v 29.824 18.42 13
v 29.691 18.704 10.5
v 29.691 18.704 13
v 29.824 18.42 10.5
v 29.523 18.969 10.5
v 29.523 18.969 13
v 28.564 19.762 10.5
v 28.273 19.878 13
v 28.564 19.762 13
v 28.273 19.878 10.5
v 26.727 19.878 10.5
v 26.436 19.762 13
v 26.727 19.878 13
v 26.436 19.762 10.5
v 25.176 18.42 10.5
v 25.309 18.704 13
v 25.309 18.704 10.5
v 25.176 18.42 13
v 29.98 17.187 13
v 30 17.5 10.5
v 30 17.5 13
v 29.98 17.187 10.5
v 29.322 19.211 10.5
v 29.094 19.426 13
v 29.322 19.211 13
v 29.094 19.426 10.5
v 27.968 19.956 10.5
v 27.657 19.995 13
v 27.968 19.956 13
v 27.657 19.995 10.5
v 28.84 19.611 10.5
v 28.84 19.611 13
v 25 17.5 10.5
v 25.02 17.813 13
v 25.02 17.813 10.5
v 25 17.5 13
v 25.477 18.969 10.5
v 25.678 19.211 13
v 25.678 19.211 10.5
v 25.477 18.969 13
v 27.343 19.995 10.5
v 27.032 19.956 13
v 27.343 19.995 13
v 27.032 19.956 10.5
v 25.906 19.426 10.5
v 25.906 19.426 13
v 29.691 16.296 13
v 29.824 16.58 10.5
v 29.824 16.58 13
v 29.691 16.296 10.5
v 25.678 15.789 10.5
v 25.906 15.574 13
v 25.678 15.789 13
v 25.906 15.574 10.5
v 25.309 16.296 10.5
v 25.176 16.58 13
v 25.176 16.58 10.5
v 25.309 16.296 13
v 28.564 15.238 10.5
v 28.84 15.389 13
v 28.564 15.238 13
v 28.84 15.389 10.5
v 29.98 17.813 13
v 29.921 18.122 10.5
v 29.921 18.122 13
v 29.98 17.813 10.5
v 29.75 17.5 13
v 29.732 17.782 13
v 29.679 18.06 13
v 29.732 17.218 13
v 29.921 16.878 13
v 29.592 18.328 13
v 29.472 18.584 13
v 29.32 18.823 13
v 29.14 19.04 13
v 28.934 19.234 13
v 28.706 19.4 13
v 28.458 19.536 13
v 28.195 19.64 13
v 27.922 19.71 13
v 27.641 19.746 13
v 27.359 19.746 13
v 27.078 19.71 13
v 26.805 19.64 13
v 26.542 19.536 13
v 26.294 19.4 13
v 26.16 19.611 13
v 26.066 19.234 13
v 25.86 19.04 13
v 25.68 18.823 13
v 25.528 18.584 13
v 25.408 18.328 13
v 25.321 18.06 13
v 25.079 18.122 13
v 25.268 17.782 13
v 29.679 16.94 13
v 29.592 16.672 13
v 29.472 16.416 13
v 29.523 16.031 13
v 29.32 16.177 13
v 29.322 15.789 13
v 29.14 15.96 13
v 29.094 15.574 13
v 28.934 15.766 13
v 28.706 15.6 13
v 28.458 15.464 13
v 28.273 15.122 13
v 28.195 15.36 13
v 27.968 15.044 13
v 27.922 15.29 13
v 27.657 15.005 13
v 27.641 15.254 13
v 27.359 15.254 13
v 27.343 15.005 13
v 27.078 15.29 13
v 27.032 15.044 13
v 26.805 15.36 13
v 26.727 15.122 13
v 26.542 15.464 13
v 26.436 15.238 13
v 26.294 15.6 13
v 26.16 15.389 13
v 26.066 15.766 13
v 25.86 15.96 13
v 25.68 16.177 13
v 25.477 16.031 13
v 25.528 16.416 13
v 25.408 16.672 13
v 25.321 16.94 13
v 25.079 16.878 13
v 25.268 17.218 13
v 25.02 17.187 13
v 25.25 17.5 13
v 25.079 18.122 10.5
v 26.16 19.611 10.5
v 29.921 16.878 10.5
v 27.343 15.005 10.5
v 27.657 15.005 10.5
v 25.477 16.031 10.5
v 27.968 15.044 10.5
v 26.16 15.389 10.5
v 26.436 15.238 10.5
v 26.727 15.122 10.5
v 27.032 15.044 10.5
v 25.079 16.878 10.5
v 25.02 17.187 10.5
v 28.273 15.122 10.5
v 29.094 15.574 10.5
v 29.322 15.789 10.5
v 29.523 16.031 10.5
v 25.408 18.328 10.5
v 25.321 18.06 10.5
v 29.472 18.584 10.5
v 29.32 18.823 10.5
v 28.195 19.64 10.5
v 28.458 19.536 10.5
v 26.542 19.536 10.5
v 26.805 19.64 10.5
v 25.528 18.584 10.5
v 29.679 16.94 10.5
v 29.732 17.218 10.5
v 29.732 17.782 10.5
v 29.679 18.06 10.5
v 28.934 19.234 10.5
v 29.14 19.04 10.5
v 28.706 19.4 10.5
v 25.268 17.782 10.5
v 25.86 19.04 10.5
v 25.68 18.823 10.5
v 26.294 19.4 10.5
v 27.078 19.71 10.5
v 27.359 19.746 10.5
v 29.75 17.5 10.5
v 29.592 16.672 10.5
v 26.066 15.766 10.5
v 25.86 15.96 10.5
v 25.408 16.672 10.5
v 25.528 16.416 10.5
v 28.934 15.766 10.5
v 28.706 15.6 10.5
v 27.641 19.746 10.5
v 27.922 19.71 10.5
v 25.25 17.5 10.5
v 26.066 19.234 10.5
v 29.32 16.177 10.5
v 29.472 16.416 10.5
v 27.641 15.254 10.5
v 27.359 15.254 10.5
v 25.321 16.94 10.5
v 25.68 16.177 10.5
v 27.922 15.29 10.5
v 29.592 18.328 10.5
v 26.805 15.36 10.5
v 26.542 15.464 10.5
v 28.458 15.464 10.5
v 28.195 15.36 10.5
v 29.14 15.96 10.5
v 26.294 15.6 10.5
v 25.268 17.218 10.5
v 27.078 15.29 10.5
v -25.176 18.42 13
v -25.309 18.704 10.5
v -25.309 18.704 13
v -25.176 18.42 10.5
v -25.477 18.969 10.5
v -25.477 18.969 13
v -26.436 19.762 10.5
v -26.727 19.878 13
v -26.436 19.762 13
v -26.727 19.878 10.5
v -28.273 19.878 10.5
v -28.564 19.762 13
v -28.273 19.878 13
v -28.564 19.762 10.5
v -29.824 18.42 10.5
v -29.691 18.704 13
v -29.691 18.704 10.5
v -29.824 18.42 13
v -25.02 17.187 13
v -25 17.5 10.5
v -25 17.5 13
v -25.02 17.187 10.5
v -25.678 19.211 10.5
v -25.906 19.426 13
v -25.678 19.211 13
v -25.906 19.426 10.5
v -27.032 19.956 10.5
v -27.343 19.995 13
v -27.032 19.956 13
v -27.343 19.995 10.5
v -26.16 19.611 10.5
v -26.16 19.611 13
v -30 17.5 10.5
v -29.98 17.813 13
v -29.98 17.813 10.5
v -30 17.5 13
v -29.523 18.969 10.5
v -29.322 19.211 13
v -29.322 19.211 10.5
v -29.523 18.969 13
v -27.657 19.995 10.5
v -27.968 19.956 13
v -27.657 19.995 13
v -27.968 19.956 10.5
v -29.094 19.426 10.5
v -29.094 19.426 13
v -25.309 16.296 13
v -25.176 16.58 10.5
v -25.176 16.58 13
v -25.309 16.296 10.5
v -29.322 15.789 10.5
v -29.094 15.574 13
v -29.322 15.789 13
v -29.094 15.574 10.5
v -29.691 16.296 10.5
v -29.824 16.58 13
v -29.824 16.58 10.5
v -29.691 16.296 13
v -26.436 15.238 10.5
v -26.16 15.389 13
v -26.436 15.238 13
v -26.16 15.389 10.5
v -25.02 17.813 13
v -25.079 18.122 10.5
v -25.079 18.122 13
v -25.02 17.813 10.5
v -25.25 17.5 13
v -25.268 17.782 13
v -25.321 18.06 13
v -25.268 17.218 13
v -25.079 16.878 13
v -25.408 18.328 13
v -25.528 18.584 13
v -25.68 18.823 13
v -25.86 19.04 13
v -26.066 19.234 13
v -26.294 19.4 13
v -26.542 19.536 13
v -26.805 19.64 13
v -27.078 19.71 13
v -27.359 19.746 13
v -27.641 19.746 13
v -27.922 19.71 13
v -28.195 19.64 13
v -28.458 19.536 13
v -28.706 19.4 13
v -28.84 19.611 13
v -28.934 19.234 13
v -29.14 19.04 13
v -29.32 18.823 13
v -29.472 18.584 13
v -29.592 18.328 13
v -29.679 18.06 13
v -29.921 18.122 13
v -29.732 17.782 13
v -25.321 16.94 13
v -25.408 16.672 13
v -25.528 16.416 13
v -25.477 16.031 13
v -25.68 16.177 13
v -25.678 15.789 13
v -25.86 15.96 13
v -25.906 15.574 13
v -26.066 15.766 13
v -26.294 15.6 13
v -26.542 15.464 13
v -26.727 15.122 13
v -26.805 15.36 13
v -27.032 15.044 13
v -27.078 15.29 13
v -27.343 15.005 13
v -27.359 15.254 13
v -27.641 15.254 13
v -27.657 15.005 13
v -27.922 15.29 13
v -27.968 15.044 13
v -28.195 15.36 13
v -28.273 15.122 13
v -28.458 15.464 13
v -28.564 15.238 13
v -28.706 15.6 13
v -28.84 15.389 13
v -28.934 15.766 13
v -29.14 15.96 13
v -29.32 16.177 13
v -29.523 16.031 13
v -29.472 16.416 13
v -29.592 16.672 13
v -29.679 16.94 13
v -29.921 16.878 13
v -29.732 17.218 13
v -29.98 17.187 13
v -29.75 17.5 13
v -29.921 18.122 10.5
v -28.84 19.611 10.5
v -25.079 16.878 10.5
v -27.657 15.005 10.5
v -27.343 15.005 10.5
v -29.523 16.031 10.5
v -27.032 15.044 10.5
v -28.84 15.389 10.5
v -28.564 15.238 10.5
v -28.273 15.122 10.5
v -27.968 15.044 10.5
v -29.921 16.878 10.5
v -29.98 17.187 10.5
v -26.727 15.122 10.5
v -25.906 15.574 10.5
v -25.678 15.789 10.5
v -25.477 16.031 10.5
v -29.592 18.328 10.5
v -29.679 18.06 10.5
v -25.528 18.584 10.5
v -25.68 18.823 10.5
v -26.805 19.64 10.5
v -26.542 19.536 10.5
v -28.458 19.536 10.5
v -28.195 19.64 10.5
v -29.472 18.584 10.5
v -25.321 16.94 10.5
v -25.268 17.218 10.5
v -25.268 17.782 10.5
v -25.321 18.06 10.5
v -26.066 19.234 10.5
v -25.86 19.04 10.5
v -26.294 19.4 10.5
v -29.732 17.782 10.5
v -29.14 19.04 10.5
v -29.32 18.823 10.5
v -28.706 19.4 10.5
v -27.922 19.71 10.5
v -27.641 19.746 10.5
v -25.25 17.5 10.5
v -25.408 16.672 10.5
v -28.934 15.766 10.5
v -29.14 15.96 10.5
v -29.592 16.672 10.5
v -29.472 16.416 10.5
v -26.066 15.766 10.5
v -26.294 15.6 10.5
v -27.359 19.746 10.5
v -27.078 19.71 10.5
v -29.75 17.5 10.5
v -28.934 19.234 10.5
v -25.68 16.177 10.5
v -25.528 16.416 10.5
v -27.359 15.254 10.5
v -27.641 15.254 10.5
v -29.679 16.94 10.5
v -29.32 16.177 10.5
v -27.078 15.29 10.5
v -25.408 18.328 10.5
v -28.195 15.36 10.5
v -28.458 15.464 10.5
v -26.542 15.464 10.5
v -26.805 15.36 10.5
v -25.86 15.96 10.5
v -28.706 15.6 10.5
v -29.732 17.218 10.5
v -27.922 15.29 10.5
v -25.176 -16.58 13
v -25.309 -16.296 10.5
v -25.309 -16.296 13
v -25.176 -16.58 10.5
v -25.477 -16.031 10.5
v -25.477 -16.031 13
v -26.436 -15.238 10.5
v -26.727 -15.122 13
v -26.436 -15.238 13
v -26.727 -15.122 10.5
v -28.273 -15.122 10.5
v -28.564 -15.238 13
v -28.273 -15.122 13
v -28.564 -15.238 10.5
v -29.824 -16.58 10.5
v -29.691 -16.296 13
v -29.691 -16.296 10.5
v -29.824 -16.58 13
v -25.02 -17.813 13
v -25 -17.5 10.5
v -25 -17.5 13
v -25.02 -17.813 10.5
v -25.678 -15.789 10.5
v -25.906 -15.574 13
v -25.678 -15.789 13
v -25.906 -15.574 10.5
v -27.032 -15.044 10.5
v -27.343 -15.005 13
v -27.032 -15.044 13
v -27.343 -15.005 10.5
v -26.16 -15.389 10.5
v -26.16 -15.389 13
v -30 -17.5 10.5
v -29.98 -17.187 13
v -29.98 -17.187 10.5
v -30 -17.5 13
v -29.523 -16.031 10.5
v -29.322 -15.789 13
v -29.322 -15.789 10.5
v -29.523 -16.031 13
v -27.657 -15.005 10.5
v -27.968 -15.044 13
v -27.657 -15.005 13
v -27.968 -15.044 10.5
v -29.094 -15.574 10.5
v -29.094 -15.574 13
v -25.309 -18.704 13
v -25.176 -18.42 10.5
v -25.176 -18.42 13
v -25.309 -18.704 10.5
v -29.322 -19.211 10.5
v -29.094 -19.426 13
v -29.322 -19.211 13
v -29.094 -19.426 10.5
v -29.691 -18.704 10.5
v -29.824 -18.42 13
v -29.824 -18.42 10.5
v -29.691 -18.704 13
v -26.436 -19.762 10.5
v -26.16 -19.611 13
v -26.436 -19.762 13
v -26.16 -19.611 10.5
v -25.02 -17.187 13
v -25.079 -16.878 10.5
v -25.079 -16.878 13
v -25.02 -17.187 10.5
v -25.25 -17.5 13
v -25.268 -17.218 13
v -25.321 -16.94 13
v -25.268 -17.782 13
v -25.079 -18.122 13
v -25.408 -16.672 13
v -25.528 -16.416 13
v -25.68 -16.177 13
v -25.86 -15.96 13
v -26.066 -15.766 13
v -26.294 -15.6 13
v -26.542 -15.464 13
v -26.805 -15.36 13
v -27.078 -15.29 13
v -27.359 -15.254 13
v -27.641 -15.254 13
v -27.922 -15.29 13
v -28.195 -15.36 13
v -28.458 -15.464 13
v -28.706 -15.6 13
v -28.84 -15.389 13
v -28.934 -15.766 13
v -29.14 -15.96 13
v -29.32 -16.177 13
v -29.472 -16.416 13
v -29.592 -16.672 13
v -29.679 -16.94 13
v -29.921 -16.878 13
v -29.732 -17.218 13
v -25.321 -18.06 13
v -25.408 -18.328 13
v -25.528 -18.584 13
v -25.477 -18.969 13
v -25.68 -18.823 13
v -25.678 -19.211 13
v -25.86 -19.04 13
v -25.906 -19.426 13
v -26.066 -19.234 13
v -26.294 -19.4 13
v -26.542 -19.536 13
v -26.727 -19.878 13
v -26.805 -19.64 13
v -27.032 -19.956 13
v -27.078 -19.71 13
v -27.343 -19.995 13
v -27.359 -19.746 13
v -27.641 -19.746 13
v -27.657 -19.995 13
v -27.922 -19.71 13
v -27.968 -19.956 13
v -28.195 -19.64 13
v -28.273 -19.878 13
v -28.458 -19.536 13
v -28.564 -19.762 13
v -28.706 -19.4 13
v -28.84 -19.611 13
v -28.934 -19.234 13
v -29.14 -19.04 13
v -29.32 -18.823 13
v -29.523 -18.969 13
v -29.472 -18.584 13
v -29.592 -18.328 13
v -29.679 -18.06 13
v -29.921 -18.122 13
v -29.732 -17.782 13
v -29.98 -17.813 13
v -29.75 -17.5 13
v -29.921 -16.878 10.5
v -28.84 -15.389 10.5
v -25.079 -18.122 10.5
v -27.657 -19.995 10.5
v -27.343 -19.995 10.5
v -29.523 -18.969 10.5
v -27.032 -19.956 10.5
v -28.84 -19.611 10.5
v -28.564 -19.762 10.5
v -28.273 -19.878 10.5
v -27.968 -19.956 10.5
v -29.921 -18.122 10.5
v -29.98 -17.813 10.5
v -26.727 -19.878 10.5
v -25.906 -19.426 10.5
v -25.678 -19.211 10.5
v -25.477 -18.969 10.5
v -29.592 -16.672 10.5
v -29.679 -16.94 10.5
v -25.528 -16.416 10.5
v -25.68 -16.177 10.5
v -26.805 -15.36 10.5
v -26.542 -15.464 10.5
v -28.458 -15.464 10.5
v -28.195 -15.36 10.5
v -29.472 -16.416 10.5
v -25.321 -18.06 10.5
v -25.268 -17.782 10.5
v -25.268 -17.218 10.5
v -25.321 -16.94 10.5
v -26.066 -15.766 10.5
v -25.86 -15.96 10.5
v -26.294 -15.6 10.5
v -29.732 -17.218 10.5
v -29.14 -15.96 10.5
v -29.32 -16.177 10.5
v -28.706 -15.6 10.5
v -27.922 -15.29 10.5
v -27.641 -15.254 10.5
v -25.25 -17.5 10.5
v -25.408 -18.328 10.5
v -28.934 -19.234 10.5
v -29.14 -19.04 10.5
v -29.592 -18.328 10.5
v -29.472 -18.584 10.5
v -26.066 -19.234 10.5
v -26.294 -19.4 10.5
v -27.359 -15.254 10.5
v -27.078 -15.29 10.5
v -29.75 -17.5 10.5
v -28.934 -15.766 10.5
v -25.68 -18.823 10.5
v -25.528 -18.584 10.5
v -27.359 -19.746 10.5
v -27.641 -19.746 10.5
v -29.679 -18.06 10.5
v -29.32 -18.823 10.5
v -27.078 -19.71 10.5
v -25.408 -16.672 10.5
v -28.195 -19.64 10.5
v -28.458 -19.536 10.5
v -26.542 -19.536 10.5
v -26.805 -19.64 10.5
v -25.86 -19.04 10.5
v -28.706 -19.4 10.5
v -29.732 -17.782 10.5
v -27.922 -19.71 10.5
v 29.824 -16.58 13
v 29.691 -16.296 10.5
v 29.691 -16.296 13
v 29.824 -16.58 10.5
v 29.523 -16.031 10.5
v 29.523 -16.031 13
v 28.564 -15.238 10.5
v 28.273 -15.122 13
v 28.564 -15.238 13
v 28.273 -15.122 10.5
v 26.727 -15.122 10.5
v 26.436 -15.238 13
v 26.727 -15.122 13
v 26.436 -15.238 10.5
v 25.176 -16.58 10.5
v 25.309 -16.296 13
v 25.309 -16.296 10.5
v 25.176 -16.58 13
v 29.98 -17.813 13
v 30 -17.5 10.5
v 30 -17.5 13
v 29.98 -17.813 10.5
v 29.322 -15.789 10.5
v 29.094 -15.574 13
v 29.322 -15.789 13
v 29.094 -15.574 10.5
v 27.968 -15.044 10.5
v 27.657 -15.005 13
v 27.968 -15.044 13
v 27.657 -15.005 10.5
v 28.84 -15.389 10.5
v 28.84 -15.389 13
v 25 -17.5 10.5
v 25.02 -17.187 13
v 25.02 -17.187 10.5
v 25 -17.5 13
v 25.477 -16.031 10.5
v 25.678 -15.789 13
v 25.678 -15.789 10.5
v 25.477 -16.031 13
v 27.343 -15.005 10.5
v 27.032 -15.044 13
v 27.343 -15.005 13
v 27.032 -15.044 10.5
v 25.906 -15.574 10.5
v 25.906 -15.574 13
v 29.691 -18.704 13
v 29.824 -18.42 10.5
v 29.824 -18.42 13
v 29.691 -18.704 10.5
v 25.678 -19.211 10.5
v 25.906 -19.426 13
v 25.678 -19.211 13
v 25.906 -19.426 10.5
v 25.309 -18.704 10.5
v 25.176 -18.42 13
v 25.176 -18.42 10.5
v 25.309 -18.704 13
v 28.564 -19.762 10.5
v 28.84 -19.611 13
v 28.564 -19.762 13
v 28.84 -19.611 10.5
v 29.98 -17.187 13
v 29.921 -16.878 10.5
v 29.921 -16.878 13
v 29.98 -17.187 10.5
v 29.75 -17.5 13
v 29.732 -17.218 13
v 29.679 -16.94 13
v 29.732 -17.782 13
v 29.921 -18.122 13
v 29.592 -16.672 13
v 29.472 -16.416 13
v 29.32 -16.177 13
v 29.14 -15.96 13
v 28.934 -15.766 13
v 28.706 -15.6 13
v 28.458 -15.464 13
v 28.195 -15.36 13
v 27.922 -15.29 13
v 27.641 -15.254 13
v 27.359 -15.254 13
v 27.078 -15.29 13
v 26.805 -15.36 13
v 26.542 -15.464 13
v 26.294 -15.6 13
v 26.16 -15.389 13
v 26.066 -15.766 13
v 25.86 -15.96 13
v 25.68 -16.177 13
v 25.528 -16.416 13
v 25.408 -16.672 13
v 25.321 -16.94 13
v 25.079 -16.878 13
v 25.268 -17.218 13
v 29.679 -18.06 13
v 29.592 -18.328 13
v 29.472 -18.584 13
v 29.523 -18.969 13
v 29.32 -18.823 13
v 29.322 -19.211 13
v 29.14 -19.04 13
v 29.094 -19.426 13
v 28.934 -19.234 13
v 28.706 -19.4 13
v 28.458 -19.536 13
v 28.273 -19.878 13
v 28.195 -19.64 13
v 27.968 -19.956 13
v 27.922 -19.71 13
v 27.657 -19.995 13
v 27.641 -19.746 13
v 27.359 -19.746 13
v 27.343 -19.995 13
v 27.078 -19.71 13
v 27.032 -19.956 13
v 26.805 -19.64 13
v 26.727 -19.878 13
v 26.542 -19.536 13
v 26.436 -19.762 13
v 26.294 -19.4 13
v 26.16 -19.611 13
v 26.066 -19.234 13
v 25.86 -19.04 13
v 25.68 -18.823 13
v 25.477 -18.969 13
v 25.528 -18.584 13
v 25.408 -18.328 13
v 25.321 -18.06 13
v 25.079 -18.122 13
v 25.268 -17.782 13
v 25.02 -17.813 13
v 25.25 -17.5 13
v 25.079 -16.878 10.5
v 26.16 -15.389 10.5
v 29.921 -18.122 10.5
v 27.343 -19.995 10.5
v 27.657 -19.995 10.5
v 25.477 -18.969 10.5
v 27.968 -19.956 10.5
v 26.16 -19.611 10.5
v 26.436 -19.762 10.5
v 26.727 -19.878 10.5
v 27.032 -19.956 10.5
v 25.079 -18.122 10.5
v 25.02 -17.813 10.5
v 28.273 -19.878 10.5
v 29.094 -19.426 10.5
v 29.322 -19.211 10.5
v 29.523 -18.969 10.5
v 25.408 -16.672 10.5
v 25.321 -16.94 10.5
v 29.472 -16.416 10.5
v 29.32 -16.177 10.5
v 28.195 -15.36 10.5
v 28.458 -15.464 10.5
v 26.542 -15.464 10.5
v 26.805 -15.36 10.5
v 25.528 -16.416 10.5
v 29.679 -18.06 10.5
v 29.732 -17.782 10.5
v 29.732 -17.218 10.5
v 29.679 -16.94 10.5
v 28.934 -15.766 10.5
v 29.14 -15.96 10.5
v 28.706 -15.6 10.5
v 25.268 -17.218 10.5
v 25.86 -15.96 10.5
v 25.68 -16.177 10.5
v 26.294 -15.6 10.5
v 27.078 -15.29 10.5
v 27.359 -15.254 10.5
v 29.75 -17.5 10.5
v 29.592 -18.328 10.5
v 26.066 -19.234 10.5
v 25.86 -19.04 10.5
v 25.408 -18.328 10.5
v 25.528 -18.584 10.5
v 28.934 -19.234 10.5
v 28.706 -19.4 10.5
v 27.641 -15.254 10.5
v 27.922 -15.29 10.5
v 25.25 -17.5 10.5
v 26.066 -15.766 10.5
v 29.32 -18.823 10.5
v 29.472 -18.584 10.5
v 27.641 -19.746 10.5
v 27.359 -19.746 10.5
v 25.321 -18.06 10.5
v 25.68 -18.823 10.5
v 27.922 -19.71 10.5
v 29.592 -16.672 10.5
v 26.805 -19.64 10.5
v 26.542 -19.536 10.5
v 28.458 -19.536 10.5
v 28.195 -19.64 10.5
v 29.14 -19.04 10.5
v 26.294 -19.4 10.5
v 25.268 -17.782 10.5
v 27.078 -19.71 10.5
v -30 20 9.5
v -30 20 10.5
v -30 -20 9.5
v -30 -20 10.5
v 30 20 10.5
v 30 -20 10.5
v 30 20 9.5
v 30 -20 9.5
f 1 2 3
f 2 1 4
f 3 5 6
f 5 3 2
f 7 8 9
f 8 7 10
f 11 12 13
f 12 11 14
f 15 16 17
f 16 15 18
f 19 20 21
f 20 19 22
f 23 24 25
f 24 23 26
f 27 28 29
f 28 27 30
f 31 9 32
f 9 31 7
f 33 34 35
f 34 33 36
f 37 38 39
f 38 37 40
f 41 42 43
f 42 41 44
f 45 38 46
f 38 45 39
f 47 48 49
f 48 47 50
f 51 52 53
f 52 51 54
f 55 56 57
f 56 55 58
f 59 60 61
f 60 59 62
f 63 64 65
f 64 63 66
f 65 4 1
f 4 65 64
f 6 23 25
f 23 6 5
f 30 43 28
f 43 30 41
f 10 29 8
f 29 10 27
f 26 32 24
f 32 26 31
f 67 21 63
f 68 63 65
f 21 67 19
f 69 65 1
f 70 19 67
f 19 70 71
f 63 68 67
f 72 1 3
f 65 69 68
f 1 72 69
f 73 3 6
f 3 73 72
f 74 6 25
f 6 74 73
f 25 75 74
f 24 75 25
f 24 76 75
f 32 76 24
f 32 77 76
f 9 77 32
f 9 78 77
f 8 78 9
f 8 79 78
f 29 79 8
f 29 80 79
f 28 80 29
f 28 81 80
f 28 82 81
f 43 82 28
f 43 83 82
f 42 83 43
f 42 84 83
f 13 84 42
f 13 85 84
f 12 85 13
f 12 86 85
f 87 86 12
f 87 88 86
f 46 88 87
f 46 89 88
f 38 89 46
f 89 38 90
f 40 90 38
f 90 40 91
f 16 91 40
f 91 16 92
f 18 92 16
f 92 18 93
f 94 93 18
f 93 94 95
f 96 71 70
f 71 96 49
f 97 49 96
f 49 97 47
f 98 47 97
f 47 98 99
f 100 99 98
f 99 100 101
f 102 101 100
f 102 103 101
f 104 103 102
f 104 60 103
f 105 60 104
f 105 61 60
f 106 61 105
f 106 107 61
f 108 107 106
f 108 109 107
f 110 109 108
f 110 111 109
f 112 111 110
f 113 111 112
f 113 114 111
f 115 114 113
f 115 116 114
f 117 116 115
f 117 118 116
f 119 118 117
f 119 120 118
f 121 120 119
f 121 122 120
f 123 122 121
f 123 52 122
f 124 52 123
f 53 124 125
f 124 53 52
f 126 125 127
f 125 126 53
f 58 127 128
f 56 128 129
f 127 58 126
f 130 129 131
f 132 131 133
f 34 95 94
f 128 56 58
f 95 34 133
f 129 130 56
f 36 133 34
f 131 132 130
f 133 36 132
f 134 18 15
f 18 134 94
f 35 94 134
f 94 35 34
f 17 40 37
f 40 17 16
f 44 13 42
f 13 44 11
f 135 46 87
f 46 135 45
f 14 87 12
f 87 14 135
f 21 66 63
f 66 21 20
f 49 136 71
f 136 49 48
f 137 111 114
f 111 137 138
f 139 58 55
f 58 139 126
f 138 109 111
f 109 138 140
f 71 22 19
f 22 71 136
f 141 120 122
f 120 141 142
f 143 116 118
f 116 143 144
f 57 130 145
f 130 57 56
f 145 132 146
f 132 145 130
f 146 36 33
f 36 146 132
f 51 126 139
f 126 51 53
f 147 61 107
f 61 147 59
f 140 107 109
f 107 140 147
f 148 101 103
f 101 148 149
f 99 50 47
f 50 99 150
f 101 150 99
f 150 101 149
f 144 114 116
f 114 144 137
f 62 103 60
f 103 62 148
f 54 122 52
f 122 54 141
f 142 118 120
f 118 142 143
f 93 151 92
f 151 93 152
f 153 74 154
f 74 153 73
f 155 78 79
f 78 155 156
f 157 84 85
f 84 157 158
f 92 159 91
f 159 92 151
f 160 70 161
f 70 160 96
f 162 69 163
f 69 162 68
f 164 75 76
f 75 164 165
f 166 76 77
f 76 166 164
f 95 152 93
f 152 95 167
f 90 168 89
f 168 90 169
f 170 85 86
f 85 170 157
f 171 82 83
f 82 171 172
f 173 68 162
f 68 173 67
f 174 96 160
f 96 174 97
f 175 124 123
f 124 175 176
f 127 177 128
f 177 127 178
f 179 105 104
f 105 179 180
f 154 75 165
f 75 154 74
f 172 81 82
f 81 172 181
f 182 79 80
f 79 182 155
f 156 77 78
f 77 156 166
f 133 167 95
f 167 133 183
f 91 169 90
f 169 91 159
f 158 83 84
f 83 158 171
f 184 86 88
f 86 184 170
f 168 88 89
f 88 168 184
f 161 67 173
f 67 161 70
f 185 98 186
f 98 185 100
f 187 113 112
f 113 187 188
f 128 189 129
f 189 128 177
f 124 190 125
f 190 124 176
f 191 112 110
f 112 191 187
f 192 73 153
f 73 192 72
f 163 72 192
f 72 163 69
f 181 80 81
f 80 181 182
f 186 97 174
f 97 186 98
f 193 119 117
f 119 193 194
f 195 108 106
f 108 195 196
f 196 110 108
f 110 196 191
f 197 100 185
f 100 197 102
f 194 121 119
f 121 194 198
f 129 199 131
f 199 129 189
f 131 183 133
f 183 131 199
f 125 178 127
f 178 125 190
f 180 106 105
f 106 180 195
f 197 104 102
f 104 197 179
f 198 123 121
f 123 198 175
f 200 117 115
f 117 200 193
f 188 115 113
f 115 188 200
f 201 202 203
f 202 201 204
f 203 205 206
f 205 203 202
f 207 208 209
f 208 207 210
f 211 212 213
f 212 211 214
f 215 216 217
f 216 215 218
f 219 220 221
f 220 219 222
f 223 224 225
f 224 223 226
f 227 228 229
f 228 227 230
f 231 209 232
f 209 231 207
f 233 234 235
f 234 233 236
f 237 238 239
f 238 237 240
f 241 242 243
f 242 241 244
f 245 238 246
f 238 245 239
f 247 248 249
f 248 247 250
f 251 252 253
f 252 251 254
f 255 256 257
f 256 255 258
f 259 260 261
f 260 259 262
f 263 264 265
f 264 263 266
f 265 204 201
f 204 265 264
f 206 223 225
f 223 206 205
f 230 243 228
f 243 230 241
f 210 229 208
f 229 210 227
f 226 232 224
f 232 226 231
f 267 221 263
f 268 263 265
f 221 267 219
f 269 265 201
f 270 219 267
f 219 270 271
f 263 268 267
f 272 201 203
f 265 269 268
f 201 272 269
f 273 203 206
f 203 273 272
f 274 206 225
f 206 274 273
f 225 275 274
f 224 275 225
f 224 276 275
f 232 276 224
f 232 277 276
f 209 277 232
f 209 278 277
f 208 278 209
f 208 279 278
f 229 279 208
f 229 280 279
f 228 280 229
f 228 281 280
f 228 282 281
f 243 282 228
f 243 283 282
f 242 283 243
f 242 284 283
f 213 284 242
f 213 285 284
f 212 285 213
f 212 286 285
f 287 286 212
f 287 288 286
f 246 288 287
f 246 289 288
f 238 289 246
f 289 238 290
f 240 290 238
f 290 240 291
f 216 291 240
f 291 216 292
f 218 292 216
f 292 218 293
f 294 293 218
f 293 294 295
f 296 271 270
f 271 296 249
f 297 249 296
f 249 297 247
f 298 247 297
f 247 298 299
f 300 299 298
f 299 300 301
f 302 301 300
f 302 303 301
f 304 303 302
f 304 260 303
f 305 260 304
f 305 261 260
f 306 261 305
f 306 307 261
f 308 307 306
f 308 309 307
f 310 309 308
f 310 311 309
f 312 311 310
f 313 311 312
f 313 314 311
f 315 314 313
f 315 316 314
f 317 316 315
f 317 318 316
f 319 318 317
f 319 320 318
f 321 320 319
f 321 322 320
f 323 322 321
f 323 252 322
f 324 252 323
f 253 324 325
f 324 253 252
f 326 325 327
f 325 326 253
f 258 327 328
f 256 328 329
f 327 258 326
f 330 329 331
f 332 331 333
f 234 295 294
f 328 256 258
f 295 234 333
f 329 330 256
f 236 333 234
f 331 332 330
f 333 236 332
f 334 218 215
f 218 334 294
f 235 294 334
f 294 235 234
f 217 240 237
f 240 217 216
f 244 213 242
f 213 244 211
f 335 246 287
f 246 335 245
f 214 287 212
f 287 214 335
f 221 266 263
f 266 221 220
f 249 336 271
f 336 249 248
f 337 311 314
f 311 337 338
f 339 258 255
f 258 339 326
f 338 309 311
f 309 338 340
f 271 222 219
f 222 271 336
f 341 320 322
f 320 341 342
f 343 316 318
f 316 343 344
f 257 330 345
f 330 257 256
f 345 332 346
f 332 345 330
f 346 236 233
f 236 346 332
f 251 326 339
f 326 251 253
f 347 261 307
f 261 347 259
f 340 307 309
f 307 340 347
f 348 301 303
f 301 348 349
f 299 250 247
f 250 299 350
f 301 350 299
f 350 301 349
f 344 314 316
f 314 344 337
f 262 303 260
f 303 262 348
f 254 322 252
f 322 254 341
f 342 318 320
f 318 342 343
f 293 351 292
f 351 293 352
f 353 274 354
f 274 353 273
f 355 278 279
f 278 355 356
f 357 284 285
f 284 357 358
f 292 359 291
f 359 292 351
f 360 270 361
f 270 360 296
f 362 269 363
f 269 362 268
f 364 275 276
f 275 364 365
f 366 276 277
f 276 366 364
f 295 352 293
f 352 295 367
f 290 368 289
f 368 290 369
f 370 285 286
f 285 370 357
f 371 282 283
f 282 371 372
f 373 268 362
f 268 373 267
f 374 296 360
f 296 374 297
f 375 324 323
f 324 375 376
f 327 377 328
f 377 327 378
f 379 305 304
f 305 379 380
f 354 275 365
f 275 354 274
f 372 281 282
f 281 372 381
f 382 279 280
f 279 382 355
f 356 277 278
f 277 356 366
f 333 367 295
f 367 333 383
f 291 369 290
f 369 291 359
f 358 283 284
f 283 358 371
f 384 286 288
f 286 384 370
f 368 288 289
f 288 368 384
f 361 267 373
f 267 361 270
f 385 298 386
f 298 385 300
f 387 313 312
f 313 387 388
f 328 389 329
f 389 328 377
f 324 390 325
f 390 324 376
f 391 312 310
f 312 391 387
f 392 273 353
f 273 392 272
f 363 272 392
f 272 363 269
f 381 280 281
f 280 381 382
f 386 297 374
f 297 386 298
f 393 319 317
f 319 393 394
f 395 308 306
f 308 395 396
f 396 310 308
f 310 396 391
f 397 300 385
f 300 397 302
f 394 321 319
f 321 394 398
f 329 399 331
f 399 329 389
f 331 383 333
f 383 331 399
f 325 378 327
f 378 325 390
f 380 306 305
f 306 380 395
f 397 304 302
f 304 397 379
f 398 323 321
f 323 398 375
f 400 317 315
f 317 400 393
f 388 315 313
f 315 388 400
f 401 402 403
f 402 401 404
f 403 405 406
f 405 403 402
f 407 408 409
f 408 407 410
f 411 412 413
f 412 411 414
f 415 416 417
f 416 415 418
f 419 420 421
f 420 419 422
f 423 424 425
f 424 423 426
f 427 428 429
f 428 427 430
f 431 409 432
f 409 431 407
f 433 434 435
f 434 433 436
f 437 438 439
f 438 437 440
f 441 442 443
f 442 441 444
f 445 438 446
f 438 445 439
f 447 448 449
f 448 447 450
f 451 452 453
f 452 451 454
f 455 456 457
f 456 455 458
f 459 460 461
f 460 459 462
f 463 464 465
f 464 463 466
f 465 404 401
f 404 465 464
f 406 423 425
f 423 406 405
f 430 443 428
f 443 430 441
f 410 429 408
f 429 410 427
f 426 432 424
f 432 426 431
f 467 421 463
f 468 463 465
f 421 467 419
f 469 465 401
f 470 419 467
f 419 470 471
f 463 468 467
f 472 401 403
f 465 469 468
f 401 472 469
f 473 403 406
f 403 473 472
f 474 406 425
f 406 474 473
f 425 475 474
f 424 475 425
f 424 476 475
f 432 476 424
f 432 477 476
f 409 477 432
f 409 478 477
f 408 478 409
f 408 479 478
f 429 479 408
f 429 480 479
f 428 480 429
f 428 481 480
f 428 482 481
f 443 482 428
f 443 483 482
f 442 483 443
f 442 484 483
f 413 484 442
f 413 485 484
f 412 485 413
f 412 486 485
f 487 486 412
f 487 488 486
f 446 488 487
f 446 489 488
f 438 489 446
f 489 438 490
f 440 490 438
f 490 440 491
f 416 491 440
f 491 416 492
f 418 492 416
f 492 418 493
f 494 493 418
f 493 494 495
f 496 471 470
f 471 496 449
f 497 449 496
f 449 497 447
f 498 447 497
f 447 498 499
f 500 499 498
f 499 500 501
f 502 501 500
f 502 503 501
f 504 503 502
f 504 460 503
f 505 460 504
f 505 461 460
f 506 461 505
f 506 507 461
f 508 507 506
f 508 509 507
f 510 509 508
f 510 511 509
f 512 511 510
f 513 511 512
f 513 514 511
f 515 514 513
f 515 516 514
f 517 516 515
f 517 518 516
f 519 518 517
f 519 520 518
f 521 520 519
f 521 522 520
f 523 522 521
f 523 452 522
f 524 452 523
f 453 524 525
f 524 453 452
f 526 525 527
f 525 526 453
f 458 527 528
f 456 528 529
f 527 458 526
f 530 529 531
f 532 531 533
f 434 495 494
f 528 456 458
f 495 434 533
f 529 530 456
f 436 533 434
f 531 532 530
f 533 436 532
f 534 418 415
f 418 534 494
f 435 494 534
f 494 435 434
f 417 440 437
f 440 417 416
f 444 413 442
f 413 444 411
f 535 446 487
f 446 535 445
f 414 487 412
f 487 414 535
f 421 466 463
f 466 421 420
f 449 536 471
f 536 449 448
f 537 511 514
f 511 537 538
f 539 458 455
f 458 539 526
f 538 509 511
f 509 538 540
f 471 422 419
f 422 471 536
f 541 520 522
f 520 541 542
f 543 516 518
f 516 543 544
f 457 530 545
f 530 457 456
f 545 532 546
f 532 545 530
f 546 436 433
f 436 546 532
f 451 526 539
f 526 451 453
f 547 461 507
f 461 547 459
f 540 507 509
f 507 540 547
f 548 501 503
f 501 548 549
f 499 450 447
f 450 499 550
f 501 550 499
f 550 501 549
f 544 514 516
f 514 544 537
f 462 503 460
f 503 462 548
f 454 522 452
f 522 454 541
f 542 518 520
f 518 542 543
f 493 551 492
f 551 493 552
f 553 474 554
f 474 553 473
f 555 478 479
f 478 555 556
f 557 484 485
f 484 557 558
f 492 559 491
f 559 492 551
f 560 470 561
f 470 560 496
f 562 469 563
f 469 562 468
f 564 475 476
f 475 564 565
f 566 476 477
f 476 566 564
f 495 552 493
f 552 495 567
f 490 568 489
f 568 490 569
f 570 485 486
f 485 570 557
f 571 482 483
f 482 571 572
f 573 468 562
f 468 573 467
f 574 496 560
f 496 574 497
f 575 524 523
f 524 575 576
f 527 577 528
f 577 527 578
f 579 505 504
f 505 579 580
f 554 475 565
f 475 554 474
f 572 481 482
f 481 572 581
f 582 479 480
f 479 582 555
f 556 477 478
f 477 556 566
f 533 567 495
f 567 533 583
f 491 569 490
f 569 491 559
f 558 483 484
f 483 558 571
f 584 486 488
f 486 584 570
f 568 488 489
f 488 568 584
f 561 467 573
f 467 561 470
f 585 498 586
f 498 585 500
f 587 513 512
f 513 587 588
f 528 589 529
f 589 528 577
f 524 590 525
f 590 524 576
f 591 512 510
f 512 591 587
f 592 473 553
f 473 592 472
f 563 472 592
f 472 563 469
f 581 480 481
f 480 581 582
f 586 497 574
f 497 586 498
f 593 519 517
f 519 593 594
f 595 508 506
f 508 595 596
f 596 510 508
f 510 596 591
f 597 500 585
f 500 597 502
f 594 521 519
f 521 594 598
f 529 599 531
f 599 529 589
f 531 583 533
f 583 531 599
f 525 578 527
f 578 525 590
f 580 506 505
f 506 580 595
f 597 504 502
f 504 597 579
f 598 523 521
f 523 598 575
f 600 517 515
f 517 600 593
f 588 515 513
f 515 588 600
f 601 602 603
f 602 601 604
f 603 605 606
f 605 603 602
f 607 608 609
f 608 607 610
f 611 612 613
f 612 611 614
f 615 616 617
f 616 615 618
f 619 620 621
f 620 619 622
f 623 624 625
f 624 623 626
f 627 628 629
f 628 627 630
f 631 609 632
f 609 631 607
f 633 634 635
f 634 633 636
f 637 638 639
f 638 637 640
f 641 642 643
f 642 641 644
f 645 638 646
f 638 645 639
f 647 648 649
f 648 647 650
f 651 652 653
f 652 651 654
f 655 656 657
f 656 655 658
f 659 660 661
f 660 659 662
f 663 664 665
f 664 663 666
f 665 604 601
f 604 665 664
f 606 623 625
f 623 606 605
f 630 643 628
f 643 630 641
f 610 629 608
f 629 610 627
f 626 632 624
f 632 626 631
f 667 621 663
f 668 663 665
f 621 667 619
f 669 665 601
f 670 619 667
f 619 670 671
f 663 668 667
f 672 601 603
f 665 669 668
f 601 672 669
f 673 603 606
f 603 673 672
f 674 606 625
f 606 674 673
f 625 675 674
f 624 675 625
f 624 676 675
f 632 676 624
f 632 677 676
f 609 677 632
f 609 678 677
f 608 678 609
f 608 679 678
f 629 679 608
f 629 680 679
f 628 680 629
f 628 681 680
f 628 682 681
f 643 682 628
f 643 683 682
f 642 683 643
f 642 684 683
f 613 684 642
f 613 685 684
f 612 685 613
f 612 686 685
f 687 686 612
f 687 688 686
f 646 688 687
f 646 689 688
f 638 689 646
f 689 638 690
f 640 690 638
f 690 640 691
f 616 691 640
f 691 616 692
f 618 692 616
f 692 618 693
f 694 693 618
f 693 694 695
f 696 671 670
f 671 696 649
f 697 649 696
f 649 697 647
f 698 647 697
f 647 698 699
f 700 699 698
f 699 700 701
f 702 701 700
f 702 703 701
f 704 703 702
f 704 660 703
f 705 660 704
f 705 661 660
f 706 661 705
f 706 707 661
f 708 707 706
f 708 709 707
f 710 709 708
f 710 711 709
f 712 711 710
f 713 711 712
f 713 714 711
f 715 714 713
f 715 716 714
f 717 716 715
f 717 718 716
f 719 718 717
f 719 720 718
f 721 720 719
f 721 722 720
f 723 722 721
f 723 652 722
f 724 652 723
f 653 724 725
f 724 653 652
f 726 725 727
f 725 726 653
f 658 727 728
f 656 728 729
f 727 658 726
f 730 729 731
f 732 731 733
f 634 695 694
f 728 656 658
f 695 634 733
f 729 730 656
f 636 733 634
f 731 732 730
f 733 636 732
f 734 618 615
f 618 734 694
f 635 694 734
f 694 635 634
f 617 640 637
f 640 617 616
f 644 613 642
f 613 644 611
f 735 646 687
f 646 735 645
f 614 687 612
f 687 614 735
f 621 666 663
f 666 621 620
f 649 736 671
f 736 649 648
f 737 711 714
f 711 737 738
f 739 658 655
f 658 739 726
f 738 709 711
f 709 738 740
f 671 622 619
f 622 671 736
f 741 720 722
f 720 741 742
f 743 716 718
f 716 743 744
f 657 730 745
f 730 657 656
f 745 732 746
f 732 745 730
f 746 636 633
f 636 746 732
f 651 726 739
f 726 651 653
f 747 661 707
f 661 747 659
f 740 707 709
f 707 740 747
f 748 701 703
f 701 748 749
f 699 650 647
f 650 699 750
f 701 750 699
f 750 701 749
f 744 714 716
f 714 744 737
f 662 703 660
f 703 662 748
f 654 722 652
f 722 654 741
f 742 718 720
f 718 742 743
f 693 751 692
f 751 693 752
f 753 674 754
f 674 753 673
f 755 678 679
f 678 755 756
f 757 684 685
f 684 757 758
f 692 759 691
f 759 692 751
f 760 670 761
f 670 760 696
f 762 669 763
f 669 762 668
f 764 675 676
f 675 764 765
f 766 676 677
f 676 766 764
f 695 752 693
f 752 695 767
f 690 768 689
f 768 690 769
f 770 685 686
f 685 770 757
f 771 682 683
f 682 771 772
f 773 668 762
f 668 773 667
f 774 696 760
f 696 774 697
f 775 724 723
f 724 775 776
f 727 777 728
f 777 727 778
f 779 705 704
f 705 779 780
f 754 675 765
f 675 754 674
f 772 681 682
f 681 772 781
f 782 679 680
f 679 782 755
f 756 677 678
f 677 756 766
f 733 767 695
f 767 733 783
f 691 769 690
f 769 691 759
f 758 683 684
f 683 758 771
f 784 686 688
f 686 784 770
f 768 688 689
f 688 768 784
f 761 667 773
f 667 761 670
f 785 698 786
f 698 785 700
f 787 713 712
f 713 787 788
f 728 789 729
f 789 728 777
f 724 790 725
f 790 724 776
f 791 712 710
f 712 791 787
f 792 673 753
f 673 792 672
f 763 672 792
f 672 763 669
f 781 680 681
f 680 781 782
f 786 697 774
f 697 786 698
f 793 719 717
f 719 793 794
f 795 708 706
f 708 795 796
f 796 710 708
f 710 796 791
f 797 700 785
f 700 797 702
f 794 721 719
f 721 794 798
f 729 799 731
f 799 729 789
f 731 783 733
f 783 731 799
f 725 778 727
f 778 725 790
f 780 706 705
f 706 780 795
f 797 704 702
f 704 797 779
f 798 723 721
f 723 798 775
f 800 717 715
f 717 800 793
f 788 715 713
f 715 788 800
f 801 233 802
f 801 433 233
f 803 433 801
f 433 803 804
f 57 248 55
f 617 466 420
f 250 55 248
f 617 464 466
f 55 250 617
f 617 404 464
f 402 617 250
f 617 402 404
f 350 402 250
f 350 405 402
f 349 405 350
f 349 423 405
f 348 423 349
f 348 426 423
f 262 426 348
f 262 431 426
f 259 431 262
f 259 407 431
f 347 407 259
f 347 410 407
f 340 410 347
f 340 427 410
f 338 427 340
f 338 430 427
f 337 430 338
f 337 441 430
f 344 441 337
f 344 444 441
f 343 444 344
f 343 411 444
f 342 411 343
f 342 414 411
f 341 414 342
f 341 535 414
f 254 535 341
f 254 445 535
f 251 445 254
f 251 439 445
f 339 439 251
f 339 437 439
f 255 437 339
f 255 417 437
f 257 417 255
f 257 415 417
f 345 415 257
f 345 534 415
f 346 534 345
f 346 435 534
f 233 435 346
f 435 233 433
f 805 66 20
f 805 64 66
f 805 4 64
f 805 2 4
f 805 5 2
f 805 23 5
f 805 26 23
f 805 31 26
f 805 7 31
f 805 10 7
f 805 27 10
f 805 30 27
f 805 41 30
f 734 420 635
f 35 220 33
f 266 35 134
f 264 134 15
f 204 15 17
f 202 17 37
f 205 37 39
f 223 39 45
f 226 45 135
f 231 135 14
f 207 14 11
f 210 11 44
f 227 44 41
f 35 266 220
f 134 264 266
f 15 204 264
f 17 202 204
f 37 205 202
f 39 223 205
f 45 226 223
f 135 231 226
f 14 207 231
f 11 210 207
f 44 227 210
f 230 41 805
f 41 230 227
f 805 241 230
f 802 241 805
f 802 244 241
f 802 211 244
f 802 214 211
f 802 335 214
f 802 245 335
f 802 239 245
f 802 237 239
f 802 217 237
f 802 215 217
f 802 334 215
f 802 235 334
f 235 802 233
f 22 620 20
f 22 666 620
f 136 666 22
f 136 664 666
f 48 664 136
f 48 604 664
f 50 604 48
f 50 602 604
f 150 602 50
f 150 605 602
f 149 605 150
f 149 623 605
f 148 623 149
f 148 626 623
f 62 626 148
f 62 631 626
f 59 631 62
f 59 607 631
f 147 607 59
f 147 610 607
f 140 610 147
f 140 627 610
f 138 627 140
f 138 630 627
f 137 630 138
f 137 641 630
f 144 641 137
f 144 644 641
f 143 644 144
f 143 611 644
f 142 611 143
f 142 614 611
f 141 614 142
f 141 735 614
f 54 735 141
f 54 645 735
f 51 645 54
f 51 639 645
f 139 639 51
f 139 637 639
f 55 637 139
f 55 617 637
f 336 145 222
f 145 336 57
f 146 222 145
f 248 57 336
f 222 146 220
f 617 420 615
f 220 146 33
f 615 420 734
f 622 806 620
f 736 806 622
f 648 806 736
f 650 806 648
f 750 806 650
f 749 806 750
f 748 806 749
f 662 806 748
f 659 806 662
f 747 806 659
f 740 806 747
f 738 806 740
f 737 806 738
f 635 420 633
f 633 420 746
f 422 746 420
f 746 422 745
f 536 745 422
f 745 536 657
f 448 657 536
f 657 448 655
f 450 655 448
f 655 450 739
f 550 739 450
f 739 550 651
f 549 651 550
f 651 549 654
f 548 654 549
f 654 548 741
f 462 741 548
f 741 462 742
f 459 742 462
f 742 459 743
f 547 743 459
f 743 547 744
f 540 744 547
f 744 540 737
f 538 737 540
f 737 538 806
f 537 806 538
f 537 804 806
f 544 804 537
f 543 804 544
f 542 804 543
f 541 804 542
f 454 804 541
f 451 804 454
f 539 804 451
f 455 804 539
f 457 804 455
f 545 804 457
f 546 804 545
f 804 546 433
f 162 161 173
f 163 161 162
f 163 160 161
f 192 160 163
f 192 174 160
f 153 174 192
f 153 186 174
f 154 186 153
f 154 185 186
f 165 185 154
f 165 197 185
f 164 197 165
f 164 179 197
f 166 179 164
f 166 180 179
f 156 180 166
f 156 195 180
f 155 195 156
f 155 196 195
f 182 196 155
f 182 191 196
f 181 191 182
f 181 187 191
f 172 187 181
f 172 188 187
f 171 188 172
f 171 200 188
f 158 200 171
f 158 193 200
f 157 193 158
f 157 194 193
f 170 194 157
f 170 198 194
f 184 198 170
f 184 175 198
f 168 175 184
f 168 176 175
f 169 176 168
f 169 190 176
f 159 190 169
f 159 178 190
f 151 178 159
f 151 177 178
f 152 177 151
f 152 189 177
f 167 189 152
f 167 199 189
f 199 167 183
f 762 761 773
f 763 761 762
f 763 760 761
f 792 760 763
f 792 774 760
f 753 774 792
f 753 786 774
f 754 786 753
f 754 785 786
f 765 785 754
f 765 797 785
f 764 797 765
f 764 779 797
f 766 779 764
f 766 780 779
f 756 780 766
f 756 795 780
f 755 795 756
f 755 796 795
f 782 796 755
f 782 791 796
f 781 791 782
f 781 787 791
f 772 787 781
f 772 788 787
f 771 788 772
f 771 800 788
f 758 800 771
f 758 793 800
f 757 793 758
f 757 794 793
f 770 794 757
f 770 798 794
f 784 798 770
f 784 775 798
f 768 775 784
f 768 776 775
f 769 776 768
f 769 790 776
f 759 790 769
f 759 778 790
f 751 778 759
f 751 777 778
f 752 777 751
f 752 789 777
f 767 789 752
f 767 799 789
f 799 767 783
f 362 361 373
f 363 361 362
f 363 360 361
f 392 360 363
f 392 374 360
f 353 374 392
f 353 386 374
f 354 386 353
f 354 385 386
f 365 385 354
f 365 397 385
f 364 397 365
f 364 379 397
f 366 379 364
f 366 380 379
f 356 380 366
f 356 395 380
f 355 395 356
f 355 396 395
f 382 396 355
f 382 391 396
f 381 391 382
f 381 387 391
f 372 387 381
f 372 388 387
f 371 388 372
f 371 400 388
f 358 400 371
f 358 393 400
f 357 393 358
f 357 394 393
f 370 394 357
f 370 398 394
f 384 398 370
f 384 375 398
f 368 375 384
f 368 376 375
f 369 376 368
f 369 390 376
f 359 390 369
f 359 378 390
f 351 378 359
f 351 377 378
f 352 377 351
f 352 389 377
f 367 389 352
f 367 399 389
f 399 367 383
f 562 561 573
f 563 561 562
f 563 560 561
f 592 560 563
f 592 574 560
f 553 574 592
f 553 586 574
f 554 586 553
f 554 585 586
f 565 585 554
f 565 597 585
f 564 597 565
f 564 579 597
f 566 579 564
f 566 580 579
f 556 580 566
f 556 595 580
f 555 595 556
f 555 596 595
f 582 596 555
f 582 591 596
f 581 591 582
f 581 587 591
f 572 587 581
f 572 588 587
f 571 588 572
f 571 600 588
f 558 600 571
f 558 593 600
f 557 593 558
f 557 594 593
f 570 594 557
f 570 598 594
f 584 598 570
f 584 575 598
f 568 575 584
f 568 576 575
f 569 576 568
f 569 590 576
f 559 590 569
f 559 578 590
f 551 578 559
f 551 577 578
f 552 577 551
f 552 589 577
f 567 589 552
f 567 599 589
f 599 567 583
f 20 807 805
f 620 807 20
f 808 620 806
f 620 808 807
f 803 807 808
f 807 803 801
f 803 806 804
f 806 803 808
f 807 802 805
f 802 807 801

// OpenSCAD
// The thickness of the exterior of case.
bezel = 2;

width = 60;
depth = 20;
height = 40;

cover_color = 0.6;
base_color = 0.7;

screw_center_inset = 2.5; // 2.5mm
screw_hole_interior = 2.25;

offset = 0; //-10;

module ir_sensor_cutout() {
  rotate([ 90, 0, 0 ]) cylinder(h = 20, r = 50, center = true);
}

module case_back_cover(v = [ 20, 20, 20 ]) {
  color([ cover_color, cover_color, cover_color ]) {
    union() {
      cube([ v.x, v.y, 1 ], true);
      difference() {
        // translate([ 0, -bezel / 2, 0 ])
        // cube([ v.x, v.y + bezel / 2, v.z ], true);

        // translate([ 0, -bezel / 2, 0 ])
        // cube([ v.x - bezel, 20, v.z - bezel ], true);
      }

      v2 = v * 0.5;

      // screw
      $fn = 50;
      translate([ v2.x - 2.5, v2.y - 2.5, 0 ]) difference() {
        cylinder(3, r = 2.5, true);
        cylinder(4, r = screw_hole_interior, true);
      }
      translate([ -v2.x + 2.5, v2.y - 2.5, 0 ]) difference() {
        cylinder(3, r = 2.5, true);
        cylinder(4, r = screw_hole_interior, true);
      }
      translate([ -v2.x + 2.5, -v2.y + 2.5, 0 ]) difference() {
        cylinder(3, r = 2.5, true);
        cylinder(4, r = screw_hole_interior, true);
      }
      translate([ v2.x - 2.5, -v2.y + 2.5, 0 ]) difference() {
        cylinder(3, r = 2.5, true);
        cylinder(4, r = screw_hole_interior, true);
      }
    }
  }
}

module case_center(v = [ 20, 20, 20 ]) {
  color([ base_color, base_color, base_color ]) {
    difference() {
      cube([ v.x + bezel, v.y + bezel, v.z ], true);
      cube([ v.x, v.y, v.z + bezel * 2 ], true);
    }
  }
}

module case (v = [ 20, 20, 20 ]) {
  // translate([ 0, (-depth / 2) - bezel / 2 + offset, 0 ])
  //     case_front_cover(width, height, bezel);
  // case_center(v);
  translate([ 0, 0, v.z / 2 ]) case_back_cover(v);
}

// case_back_cover([ width, 5, depth ]);

case ([ width, height, depth ]);

// cube([10,20,30]);
